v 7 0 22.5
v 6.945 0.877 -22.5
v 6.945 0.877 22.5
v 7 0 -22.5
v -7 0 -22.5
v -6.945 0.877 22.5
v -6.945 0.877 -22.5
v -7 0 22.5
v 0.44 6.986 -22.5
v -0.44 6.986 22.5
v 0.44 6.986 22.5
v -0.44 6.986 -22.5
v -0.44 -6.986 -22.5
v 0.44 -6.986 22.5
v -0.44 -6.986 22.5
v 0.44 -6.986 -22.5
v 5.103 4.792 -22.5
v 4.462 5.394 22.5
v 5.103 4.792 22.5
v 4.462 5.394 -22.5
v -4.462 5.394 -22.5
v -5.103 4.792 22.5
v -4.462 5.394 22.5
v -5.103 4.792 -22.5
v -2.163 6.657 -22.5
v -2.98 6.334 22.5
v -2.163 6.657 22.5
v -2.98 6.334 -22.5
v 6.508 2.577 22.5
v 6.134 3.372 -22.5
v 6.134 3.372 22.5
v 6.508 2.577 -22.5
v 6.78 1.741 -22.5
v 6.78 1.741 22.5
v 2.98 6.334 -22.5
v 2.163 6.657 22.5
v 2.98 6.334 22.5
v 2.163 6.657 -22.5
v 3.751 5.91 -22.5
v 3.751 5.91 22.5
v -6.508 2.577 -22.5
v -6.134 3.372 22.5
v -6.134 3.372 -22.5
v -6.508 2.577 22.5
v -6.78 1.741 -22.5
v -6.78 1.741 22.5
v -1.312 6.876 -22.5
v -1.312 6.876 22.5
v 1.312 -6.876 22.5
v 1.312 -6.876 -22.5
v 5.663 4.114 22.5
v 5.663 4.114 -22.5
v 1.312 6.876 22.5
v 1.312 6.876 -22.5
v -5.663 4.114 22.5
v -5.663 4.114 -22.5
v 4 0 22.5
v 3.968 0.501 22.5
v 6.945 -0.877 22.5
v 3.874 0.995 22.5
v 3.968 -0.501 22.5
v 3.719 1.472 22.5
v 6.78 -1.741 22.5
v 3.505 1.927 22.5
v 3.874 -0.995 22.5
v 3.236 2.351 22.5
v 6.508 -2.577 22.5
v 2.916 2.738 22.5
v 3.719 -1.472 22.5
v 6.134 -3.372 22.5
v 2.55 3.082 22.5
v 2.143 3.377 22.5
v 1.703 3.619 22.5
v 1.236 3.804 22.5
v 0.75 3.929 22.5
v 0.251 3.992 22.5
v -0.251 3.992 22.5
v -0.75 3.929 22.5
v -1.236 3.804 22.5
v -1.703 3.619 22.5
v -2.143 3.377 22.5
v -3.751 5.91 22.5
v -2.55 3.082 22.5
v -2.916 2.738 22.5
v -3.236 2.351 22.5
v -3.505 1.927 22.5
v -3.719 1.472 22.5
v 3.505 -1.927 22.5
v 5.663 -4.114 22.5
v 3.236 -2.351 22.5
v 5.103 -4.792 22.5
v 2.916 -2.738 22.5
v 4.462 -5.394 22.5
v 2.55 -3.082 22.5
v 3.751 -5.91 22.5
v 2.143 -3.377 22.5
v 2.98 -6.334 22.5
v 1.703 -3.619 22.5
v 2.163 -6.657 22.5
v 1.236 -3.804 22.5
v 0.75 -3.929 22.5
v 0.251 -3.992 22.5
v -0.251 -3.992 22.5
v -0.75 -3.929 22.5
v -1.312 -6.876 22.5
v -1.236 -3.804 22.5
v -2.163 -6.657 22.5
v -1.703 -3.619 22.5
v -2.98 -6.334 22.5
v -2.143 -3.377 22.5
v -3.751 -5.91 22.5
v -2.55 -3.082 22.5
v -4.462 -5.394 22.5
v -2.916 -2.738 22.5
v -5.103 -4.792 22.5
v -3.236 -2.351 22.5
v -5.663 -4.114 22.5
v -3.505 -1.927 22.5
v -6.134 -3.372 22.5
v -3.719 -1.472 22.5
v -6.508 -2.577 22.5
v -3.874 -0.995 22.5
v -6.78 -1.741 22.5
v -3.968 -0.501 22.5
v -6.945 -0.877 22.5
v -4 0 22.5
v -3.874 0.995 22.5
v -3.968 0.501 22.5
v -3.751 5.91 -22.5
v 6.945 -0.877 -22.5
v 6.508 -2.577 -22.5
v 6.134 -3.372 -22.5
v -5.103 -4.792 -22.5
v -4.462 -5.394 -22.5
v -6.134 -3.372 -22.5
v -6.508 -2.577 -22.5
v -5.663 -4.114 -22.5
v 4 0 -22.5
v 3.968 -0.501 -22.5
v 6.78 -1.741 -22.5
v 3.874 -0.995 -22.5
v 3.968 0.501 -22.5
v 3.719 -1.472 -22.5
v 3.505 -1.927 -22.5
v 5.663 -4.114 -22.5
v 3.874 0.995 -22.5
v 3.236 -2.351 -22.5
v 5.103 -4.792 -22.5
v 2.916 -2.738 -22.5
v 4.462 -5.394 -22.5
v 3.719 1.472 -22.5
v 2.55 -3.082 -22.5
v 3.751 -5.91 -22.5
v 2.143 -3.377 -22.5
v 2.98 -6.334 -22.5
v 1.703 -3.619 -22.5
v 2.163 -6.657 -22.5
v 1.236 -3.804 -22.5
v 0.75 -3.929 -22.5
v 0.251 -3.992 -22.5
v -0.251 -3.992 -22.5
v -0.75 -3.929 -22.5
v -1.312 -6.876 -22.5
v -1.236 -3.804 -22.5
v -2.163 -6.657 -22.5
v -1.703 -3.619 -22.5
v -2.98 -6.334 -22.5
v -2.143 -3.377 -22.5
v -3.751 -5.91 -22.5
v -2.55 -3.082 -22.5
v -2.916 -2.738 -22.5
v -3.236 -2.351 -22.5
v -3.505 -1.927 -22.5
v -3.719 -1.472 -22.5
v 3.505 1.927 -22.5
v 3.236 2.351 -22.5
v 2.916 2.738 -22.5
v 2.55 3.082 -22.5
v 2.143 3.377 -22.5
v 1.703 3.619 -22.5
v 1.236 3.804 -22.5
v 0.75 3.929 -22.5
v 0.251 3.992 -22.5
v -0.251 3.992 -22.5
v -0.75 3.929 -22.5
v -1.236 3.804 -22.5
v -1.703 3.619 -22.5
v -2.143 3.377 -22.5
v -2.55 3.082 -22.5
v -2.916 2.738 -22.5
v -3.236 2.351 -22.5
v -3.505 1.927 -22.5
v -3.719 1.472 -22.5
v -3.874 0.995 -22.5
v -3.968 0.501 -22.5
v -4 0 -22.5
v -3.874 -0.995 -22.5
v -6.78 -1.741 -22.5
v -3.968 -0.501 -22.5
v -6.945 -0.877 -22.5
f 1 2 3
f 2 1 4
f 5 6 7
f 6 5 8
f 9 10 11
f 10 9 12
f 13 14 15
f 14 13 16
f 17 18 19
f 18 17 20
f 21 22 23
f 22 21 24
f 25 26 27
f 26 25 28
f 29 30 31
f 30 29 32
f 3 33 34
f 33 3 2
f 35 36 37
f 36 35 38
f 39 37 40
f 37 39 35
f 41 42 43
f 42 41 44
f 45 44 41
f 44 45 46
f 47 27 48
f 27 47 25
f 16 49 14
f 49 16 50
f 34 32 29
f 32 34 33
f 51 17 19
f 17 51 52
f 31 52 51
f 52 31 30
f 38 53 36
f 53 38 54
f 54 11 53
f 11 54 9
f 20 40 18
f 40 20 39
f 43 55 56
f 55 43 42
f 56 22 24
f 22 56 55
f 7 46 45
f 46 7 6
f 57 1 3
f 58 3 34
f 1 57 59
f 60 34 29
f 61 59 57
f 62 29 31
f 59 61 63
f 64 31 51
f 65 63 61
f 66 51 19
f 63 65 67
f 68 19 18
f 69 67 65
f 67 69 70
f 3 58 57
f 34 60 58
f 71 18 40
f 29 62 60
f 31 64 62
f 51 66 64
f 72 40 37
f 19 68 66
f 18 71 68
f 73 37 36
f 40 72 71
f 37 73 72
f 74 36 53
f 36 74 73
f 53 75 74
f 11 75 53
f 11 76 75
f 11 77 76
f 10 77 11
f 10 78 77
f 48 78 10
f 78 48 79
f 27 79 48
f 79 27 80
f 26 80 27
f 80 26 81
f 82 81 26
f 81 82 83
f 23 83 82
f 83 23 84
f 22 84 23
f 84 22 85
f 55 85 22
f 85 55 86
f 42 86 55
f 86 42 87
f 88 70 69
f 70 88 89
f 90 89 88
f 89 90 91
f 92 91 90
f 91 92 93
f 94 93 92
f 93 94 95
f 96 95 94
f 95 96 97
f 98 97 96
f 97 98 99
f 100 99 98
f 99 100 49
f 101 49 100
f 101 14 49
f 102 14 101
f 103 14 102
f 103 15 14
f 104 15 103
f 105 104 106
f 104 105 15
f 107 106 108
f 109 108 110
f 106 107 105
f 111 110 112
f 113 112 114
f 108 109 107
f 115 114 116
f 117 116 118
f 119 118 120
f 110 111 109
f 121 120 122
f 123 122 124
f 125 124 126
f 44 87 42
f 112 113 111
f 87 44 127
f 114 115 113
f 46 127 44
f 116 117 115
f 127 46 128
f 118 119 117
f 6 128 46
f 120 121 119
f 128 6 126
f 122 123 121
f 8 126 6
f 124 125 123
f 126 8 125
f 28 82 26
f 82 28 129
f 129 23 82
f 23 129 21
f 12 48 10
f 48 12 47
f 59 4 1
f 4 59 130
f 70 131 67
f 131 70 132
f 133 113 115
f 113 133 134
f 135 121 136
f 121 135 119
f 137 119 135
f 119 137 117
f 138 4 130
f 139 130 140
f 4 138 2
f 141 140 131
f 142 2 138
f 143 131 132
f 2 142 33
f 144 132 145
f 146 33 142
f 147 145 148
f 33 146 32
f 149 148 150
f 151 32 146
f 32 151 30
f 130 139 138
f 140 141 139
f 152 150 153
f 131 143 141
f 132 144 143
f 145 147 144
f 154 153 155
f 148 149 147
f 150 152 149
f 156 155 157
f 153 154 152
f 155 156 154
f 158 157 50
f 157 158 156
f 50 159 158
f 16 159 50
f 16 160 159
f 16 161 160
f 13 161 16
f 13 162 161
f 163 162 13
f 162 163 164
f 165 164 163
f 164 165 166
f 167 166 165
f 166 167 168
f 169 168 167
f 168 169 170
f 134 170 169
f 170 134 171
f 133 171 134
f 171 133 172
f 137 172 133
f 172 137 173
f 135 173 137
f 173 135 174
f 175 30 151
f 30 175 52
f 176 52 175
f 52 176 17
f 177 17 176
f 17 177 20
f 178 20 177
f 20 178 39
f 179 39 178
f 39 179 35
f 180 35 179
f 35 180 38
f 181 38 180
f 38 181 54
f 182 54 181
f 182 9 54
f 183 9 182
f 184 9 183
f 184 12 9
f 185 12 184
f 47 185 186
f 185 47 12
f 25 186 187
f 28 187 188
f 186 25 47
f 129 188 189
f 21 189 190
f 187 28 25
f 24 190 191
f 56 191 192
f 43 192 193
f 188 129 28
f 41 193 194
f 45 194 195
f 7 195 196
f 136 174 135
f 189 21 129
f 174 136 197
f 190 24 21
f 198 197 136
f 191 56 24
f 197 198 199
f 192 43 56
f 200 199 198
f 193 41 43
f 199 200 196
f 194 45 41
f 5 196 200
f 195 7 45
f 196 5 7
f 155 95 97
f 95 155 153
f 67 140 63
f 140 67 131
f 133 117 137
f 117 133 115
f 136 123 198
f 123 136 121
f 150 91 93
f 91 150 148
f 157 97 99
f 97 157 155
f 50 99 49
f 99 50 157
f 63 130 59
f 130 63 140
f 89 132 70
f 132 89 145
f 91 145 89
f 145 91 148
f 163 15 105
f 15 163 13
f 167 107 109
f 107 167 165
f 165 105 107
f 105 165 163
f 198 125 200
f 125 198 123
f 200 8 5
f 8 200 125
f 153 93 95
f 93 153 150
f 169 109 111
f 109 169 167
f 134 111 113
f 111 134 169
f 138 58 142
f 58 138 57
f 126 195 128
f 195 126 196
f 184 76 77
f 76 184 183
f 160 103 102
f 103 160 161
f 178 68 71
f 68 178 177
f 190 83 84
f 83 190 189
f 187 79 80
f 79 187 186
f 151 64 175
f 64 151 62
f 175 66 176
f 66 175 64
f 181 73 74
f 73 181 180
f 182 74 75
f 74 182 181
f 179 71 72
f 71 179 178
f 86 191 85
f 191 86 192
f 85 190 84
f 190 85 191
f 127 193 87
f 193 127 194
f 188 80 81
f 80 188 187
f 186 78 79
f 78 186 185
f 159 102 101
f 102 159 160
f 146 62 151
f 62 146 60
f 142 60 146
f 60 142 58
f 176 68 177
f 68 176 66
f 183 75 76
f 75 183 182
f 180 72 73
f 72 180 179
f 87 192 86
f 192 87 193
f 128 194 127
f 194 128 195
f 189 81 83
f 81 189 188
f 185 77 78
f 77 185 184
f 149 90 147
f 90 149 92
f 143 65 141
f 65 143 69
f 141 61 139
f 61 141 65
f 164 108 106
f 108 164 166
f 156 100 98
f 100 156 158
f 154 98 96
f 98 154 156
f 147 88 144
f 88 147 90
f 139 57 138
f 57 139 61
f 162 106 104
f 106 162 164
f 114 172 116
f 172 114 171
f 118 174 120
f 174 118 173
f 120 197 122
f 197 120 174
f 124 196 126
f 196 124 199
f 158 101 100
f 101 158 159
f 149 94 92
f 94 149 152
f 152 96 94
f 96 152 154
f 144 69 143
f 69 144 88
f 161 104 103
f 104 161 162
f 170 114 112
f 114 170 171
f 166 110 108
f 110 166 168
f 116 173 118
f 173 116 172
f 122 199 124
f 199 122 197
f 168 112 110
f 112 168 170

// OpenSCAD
$fn = 50;


difference() {
	union() {
		translate(v = [0, 0, -22.5000000000]) {
			cylinder(h = 45, r = 7.0000000000);
		}
	}
	union() {
		translate(v = [0, 0, -100.0000000000]) {
			cylinder(h = 200, r = 4);
		}
	}
}
